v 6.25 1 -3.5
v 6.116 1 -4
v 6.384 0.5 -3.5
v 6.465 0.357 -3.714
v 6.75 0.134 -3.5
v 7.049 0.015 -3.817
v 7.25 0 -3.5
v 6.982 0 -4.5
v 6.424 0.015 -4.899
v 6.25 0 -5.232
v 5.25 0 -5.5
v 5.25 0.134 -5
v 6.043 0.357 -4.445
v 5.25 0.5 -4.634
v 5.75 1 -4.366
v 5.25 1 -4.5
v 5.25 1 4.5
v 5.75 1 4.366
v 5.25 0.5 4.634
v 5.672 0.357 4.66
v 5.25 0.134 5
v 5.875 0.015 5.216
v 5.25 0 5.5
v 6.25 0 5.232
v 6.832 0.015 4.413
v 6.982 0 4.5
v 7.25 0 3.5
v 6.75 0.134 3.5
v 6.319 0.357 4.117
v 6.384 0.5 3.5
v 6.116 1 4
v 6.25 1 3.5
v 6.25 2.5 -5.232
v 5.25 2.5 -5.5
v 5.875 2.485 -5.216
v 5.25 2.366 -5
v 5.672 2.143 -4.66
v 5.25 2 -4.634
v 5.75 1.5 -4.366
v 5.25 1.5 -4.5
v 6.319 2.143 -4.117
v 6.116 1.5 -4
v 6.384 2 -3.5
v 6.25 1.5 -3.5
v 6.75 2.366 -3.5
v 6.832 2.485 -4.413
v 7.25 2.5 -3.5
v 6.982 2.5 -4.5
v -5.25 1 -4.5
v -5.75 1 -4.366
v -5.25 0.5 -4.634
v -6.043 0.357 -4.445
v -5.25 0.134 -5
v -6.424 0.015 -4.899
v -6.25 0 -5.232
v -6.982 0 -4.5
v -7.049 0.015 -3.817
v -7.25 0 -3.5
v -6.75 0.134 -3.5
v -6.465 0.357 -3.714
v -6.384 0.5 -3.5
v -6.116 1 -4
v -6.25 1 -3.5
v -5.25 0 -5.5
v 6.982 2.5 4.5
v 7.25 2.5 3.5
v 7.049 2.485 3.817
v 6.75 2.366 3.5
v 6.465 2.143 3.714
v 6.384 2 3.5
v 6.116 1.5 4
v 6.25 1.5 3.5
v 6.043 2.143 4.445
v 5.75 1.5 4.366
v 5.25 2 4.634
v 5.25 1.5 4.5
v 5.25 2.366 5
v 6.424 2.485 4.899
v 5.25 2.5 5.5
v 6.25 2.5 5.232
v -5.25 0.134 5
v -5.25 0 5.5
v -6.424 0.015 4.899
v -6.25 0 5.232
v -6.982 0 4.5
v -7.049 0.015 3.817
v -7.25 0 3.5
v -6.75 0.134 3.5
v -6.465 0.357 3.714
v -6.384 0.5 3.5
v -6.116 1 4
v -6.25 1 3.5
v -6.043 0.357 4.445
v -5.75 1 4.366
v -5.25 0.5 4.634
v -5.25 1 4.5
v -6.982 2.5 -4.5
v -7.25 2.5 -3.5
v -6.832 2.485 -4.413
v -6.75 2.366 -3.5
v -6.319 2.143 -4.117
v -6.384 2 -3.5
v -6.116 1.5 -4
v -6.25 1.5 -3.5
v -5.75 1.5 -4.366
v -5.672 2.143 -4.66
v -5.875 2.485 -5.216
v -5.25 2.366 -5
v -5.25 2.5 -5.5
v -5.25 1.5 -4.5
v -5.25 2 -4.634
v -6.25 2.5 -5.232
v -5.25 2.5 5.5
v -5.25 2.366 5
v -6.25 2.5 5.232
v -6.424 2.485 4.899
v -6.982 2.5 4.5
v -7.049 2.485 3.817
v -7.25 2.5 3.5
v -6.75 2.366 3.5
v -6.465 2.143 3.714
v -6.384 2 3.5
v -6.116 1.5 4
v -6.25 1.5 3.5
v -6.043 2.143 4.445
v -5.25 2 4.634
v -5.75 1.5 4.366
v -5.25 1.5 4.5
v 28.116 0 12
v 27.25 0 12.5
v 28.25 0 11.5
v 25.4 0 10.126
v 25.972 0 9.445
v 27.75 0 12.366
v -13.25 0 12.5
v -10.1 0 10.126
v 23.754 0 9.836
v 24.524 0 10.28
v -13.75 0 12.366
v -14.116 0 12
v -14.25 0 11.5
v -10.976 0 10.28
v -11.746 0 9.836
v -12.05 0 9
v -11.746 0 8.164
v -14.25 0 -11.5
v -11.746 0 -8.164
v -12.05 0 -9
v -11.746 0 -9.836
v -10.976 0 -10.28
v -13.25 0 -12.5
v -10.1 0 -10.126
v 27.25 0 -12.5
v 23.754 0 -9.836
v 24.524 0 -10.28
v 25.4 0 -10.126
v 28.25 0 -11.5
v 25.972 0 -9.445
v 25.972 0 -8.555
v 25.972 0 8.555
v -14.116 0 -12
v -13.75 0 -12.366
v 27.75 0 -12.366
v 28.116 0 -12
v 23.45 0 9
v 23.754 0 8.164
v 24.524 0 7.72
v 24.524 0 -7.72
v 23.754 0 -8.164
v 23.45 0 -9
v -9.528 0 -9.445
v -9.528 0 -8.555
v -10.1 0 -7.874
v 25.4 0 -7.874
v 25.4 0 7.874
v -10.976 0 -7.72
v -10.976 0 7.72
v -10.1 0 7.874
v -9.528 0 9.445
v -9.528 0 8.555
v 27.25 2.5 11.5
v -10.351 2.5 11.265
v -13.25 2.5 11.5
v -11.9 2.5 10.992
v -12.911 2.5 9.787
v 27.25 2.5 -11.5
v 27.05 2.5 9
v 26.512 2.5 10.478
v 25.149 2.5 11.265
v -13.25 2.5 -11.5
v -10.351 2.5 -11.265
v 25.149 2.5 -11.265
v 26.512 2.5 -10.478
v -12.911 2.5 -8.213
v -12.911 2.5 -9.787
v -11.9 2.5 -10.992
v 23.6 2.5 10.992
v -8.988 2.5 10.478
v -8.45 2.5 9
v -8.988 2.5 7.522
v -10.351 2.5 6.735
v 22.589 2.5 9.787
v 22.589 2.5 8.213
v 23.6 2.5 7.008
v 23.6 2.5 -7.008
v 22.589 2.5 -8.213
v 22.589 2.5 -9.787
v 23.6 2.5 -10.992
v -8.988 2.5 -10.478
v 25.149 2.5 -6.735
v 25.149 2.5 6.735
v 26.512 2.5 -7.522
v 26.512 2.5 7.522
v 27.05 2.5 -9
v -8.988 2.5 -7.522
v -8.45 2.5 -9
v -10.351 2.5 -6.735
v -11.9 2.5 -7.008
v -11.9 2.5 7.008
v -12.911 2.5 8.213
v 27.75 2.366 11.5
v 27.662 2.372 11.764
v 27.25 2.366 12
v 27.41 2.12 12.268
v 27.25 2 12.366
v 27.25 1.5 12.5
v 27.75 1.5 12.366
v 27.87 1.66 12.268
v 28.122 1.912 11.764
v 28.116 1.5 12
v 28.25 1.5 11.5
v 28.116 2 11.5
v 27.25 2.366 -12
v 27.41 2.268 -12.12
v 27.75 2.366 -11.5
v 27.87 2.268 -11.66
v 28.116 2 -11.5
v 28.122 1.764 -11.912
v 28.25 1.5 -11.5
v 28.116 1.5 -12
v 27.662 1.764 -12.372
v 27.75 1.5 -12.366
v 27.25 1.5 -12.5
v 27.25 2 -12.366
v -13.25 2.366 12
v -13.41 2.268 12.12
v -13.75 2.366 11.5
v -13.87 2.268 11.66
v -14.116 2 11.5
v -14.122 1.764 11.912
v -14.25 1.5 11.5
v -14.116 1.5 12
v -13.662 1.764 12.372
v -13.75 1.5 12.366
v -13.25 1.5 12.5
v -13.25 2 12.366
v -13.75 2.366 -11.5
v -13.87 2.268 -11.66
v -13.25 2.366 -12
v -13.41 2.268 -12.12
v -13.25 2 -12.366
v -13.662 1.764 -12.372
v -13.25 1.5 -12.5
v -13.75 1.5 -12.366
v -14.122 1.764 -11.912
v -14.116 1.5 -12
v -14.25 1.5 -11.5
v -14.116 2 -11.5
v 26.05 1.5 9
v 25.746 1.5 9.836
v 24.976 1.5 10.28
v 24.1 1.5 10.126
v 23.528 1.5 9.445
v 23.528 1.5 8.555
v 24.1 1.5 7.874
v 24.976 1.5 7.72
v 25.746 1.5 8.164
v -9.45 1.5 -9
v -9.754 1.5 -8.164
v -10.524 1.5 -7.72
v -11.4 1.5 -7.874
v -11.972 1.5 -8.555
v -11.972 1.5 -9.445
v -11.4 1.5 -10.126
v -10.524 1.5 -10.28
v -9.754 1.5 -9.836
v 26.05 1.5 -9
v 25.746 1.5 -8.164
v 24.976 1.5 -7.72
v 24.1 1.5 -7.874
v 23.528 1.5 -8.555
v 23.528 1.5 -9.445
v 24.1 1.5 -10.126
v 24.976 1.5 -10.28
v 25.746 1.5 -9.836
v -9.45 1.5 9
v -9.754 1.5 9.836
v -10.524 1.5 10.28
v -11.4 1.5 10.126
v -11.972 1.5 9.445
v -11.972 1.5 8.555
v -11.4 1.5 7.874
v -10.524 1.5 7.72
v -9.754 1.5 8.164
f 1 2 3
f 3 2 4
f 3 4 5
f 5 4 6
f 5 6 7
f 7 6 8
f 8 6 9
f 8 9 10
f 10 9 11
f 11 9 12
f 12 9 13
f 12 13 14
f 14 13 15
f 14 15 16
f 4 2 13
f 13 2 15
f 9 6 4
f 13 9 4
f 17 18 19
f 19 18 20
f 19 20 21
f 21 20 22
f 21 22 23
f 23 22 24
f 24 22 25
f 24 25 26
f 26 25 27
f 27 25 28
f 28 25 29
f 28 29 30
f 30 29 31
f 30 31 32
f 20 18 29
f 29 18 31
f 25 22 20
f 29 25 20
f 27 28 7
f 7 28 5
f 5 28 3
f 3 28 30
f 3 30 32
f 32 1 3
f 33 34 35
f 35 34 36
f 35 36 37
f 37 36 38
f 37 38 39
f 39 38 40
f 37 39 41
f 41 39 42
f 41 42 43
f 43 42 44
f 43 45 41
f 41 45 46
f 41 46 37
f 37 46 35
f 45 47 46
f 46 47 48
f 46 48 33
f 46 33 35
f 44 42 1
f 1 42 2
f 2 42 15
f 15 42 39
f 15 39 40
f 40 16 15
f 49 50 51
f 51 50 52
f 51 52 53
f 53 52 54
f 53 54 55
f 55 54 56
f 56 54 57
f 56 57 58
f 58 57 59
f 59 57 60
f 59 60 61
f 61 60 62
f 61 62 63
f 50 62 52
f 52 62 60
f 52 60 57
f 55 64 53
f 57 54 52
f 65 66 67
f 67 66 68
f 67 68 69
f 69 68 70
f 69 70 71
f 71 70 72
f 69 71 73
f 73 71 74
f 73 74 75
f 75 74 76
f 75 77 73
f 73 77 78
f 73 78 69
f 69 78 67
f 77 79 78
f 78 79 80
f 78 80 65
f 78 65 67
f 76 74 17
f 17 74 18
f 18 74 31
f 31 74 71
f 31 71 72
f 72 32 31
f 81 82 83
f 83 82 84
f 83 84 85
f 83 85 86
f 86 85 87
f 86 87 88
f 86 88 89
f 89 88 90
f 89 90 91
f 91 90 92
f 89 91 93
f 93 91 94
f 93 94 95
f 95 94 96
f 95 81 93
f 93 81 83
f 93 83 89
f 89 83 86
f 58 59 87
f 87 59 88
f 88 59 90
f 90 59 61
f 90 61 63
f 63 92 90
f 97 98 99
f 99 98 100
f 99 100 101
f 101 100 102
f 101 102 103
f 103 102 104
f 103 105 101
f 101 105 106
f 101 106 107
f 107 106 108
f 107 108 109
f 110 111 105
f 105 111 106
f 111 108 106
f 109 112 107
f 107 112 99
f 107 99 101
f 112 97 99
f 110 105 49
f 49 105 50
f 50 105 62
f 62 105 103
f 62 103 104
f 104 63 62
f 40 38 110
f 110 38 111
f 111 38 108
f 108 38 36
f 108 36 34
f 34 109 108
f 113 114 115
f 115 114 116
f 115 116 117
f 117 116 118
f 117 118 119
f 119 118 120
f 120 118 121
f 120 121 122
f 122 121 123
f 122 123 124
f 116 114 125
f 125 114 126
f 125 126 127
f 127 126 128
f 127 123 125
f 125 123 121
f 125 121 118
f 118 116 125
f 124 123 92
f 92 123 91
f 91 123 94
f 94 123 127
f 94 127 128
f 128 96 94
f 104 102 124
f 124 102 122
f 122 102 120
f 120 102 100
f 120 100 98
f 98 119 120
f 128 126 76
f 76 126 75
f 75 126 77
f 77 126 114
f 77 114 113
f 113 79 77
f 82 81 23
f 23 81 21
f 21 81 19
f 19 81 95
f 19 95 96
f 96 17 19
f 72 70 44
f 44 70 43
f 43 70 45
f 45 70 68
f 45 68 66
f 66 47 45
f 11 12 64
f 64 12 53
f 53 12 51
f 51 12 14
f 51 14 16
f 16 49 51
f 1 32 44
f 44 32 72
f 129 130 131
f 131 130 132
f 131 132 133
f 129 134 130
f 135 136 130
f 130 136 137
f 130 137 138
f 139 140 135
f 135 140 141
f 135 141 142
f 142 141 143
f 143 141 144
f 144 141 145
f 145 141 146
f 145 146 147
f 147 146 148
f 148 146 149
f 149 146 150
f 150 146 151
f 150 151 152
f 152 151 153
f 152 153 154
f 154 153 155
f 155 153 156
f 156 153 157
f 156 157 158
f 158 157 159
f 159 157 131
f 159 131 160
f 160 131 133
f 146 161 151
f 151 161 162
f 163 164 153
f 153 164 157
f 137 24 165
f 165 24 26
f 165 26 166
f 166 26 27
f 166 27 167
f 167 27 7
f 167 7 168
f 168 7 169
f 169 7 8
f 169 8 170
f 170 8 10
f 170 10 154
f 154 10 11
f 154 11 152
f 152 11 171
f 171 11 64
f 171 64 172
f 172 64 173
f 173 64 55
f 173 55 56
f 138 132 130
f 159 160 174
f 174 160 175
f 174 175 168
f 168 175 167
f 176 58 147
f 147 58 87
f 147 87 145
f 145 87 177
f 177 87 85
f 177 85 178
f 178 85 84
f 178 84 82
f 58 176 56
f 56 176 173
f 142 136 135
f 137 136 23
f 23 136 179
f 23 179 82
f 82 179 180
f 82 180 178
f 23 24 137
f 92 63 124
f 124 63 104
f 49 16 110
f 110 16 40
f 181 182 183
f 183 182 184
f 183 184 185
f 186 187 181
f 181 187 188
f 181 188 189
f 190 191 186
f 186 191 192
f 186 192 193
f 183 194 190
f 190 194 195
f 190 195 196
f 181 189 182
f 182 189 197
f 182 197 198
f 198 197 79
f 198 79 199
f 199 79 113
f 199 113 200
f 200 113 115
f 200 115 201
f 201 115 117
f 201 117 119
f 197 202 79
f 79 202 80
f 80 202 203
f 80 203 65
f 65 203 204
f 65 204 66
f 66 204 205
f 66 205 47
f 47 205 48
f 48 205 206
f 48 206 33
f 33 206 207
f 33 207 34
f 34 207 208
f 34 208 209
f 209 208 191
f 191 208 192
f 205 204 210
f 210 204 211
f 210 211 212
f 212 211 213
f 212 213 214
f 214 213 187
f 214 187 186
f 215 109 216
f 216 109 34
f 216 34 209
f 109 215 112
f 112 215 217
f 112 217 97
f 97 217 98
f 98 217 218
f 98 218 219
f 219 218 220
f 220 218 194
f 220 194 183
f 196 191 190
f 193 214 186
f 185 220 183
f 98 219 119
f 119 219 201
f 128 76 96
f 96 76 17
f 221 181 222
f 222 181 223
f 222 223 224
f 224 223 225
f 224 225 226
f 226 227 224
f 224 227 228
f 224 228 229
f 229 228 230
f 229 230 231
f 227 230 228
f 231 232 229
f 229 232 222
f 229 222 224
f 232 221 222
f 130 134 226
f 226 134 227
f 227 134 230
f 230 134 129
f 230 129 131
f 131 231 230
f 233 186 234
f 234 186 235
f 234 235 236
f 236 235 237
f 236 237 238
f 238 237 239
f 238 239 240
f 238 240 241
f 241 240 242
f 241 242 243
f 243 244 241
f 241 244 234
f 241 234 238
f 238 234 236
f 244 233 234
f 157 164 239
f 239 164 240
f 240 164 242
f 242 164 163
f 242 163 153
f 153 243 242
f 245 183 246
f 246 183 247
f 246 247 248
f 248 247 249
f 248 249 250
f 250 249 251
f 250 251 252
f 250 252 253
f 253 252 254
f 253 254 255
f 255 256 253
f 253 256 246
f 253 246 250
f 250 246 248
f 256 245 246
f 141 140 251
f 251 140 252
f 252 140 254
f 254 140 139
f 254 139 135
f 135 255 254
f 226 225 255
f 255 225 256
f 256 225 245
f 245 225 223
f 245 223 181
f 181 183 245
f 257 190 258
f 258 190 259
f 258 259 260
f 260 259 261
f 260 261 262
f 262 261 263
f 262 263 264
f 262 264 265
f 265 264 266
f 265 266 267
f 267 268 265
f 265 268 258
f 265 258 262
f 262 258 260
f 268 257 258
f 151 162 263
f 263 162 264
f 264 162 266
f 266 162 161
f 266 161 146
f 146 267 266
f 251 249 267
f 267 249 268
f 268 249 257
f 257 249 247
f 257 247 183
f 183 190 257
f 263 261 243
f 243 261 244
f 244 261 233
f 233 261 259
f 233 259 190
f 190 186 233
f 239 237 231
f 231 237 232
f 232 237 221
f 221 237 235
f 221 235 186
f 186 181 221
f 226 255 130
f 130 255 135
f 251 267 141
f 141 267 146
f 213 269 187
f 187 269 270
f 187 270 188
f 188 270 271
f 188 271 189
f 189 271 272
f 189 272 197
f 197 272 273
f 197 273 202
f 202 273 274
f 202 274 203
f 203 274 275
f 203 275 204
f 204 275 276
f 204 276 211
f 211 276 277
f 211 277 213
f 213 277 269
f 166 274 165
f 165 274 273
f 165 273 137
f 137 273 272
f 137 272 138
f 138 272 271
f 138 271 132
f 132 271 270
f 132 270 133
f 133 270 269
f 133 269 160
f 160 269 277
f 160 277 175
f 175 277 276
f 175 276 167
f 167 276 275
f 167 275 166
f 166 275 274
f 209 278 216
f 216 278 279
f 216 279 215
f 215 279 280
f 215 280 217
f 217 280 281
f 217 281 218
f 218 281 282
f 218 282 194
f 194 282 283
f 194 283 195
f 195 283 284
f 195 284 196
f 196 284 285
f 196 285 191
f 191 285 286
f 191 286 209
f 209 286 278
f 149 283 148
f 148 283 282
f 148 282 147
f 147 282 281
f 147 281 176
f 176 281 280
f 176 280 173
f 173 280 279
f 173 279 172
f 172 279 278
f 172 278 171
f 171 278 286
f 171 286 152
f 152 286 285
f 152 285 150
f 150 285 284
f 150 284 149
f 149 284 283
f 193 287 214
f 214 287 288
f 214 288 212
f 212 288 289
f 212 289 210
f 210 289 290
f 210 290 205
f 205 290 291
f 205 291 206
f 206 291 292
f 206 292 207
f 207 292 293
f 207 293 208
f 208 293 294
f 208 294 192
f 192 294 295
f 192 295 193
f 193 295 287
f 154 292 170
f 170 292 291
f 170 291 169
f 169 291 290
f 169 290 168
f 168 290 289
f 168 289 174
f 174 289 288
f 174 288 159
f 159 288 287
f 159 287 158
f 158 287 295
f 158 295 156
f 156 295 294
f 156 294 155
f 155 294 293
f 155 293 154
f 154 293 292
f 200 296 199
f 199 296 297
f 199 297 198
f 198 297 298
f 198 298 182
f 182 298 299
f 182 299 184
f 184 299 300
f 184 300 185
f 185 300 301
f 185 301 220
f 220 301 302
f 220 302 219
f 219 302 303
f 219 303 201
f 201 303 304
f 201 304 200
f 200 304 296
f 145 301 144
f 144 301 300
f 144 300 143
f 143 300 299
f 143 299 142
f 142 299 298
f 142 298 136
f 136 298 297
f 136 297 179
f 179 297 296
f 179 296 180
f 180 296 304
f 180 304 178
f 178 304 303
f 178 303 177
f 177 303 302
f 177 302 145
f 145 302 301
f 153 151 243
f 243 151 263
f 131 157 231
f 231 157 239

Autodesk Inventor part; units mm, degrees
ref_plane "YZ Plane" through (0, 0, 0) normal (1, 0, 0) x (0, 1, 0)
ref_plane "XZ Plane" through (0, 0, 0) normal (0, 1, 0) x (-1, 0, 0)
ref_plane "XY Plane" through (0, 0, 0) normal (0, 0, 1) x (1, 0, 0)
sketch "Эскиз1" plane through (0, 0, 0) normal (0, 1, 0) x (-1, 0, 0)
  line L0 (-7.75, 6) -> (7.75, 6) construction
  line L1 (7.75, 6) -> (7.75, -6) construction
  line L2 (7.75, -6) -> (-7.75, -6) construction
  line L3 (-7.75, -6) -> (-7.75, 6) construction
  line L4 (-7.75, 6) -> (7.75, -6) construction
  line L5 (7.75, 6) -> (-7.75, -6) construction
  line L6 (14.25, 12.5) -> (-14.25, 12.5)
  line L7 (-14.25, 12.5) -> (-14.25, -12.5) construction
  line L8 (-14.25, -12.5) -> (14.25, -12.5)
  line L9 (14.25, -12.5) -> (14.25, 12.5)
  line L10 (8.75, 7) -> (-8.75, 7) construction
  line L11 (-8.75, 7) -> (-8.75, -7) construction
  line L12 (-8.75, -7) -> (8.75, -7) construction
  line L13 (8.75, -7) -> (8.75, 7) construction
  line L14 (6.25, 4.5) -> (-6.25, 4.5)
  line L15 (-6.25, 4.5) -> (-6.25, -4.5)
  line L16 (-6.25, -4.5) -> (6.25, -4.5)
  line L17 (6.25, -4.5) -> (6.25, 4.5)
  line L18 (-14.25, -12.5) -> (-28.25, -12.5)
  line L19 (-28.25, -12.5) -> (-28.25, 12.5)
  line L20 (-28.25, 12.5) -> (-14.25, 12.5)
  line L21 (-14.25, 12.5) -> (-14.25, -12.5) construction
  point P0 (0, 0)
  point P1 (-14.25, 12.5)
  dimension "d2" = 15.5
  dimension "d3" = 12
  dimension "d20" = 25
  dimension "d21" = 14
  dimension "d22" = 1.5
  dimension "d42" = 42.5
extrude "Выдавливание1" add sketch "Эскиз1" along normal blind 2.5
sketch "Эскиз2" plane through (0, 2.5, 0) normal (0, 1, 0) x (1, 0, 0)
  line L0 (8.75, 7) -> (-8.75, 7) construction
  line L1 (-8.75, 7) -> (-8.75, -7) construction
  line L2 (-8.75, -7) -> (8.75, -7) construction
  line L3 (8.75, -7) -> (8.75, 7) construction
  line L4 (8.75, 7) -> (-8.75, -7) construction
  line L5 (-8.75, 7) -> (8.75, -7) construction
  line L6 (-14.25, -12.5) -> (28.25, -12.5) construction
  line L7 (6.25, -4.5) -> (-6.25, -4.5) construction
  line L8 (-14.25, -12.5) -> (-6.25, -4.5) construction
  circle A0 centre (-10.75, -9) radius 1.35 construction
  point P0 (0, 0)
  point P1 (-10.75, 9)
  point P2 (24.75, -9)
  point P3 (24.75, 9)
  dimension "d23" = 14
  dimension "d24" = 17.5
  dimension "d25" = 2.7
  dimension "d27" = 2
  dimension "d30" = 18
  dimension "d33" = 35.5
hole "Отверстие1" at (-10.75, 2.5, -9) at (24.75, 2.5, -9) at (24.75, 2.5, 9) at (-10.75, 2.5, 9) direction (0, -1, 0) diameter 2.6 end through all countersink diameter 4.6 countersink angle 90 clearance for "с потайной головкой ГОСТ 12876-67" size "M2" standard "ГОСТ"
fillet "Сопряжение5" radius 1 20 edges at (-14.25, 2.5, 0) (7, 2.5, -12.5) (-14.25, 1.25, -12.5) (7, 2.5, 12.5) (-14.25, 1.25, 12.5) (-6.25, 2.5, 0) (-6.25, 1.25, -4.5) (0, 2.5, -4.5) (-6.25, 0, 0) (0, 0, -4.5) (6.25, 1.25, 4.5) (6.25, 2.5, 0) (6.25, 0, 0) (6.25, 1.25, -4.5) (-6.25, 1.25, 4.5) (0, 2.5, 4.5) (0, 0, 4.5) (28.25, 1.25, 12.5) (28.25, 2.5, 0) (28.25, 1.25, -12.5)
equation "\"d30\" = d23 + 2 * d27"
properties part number "крышка корпус"
